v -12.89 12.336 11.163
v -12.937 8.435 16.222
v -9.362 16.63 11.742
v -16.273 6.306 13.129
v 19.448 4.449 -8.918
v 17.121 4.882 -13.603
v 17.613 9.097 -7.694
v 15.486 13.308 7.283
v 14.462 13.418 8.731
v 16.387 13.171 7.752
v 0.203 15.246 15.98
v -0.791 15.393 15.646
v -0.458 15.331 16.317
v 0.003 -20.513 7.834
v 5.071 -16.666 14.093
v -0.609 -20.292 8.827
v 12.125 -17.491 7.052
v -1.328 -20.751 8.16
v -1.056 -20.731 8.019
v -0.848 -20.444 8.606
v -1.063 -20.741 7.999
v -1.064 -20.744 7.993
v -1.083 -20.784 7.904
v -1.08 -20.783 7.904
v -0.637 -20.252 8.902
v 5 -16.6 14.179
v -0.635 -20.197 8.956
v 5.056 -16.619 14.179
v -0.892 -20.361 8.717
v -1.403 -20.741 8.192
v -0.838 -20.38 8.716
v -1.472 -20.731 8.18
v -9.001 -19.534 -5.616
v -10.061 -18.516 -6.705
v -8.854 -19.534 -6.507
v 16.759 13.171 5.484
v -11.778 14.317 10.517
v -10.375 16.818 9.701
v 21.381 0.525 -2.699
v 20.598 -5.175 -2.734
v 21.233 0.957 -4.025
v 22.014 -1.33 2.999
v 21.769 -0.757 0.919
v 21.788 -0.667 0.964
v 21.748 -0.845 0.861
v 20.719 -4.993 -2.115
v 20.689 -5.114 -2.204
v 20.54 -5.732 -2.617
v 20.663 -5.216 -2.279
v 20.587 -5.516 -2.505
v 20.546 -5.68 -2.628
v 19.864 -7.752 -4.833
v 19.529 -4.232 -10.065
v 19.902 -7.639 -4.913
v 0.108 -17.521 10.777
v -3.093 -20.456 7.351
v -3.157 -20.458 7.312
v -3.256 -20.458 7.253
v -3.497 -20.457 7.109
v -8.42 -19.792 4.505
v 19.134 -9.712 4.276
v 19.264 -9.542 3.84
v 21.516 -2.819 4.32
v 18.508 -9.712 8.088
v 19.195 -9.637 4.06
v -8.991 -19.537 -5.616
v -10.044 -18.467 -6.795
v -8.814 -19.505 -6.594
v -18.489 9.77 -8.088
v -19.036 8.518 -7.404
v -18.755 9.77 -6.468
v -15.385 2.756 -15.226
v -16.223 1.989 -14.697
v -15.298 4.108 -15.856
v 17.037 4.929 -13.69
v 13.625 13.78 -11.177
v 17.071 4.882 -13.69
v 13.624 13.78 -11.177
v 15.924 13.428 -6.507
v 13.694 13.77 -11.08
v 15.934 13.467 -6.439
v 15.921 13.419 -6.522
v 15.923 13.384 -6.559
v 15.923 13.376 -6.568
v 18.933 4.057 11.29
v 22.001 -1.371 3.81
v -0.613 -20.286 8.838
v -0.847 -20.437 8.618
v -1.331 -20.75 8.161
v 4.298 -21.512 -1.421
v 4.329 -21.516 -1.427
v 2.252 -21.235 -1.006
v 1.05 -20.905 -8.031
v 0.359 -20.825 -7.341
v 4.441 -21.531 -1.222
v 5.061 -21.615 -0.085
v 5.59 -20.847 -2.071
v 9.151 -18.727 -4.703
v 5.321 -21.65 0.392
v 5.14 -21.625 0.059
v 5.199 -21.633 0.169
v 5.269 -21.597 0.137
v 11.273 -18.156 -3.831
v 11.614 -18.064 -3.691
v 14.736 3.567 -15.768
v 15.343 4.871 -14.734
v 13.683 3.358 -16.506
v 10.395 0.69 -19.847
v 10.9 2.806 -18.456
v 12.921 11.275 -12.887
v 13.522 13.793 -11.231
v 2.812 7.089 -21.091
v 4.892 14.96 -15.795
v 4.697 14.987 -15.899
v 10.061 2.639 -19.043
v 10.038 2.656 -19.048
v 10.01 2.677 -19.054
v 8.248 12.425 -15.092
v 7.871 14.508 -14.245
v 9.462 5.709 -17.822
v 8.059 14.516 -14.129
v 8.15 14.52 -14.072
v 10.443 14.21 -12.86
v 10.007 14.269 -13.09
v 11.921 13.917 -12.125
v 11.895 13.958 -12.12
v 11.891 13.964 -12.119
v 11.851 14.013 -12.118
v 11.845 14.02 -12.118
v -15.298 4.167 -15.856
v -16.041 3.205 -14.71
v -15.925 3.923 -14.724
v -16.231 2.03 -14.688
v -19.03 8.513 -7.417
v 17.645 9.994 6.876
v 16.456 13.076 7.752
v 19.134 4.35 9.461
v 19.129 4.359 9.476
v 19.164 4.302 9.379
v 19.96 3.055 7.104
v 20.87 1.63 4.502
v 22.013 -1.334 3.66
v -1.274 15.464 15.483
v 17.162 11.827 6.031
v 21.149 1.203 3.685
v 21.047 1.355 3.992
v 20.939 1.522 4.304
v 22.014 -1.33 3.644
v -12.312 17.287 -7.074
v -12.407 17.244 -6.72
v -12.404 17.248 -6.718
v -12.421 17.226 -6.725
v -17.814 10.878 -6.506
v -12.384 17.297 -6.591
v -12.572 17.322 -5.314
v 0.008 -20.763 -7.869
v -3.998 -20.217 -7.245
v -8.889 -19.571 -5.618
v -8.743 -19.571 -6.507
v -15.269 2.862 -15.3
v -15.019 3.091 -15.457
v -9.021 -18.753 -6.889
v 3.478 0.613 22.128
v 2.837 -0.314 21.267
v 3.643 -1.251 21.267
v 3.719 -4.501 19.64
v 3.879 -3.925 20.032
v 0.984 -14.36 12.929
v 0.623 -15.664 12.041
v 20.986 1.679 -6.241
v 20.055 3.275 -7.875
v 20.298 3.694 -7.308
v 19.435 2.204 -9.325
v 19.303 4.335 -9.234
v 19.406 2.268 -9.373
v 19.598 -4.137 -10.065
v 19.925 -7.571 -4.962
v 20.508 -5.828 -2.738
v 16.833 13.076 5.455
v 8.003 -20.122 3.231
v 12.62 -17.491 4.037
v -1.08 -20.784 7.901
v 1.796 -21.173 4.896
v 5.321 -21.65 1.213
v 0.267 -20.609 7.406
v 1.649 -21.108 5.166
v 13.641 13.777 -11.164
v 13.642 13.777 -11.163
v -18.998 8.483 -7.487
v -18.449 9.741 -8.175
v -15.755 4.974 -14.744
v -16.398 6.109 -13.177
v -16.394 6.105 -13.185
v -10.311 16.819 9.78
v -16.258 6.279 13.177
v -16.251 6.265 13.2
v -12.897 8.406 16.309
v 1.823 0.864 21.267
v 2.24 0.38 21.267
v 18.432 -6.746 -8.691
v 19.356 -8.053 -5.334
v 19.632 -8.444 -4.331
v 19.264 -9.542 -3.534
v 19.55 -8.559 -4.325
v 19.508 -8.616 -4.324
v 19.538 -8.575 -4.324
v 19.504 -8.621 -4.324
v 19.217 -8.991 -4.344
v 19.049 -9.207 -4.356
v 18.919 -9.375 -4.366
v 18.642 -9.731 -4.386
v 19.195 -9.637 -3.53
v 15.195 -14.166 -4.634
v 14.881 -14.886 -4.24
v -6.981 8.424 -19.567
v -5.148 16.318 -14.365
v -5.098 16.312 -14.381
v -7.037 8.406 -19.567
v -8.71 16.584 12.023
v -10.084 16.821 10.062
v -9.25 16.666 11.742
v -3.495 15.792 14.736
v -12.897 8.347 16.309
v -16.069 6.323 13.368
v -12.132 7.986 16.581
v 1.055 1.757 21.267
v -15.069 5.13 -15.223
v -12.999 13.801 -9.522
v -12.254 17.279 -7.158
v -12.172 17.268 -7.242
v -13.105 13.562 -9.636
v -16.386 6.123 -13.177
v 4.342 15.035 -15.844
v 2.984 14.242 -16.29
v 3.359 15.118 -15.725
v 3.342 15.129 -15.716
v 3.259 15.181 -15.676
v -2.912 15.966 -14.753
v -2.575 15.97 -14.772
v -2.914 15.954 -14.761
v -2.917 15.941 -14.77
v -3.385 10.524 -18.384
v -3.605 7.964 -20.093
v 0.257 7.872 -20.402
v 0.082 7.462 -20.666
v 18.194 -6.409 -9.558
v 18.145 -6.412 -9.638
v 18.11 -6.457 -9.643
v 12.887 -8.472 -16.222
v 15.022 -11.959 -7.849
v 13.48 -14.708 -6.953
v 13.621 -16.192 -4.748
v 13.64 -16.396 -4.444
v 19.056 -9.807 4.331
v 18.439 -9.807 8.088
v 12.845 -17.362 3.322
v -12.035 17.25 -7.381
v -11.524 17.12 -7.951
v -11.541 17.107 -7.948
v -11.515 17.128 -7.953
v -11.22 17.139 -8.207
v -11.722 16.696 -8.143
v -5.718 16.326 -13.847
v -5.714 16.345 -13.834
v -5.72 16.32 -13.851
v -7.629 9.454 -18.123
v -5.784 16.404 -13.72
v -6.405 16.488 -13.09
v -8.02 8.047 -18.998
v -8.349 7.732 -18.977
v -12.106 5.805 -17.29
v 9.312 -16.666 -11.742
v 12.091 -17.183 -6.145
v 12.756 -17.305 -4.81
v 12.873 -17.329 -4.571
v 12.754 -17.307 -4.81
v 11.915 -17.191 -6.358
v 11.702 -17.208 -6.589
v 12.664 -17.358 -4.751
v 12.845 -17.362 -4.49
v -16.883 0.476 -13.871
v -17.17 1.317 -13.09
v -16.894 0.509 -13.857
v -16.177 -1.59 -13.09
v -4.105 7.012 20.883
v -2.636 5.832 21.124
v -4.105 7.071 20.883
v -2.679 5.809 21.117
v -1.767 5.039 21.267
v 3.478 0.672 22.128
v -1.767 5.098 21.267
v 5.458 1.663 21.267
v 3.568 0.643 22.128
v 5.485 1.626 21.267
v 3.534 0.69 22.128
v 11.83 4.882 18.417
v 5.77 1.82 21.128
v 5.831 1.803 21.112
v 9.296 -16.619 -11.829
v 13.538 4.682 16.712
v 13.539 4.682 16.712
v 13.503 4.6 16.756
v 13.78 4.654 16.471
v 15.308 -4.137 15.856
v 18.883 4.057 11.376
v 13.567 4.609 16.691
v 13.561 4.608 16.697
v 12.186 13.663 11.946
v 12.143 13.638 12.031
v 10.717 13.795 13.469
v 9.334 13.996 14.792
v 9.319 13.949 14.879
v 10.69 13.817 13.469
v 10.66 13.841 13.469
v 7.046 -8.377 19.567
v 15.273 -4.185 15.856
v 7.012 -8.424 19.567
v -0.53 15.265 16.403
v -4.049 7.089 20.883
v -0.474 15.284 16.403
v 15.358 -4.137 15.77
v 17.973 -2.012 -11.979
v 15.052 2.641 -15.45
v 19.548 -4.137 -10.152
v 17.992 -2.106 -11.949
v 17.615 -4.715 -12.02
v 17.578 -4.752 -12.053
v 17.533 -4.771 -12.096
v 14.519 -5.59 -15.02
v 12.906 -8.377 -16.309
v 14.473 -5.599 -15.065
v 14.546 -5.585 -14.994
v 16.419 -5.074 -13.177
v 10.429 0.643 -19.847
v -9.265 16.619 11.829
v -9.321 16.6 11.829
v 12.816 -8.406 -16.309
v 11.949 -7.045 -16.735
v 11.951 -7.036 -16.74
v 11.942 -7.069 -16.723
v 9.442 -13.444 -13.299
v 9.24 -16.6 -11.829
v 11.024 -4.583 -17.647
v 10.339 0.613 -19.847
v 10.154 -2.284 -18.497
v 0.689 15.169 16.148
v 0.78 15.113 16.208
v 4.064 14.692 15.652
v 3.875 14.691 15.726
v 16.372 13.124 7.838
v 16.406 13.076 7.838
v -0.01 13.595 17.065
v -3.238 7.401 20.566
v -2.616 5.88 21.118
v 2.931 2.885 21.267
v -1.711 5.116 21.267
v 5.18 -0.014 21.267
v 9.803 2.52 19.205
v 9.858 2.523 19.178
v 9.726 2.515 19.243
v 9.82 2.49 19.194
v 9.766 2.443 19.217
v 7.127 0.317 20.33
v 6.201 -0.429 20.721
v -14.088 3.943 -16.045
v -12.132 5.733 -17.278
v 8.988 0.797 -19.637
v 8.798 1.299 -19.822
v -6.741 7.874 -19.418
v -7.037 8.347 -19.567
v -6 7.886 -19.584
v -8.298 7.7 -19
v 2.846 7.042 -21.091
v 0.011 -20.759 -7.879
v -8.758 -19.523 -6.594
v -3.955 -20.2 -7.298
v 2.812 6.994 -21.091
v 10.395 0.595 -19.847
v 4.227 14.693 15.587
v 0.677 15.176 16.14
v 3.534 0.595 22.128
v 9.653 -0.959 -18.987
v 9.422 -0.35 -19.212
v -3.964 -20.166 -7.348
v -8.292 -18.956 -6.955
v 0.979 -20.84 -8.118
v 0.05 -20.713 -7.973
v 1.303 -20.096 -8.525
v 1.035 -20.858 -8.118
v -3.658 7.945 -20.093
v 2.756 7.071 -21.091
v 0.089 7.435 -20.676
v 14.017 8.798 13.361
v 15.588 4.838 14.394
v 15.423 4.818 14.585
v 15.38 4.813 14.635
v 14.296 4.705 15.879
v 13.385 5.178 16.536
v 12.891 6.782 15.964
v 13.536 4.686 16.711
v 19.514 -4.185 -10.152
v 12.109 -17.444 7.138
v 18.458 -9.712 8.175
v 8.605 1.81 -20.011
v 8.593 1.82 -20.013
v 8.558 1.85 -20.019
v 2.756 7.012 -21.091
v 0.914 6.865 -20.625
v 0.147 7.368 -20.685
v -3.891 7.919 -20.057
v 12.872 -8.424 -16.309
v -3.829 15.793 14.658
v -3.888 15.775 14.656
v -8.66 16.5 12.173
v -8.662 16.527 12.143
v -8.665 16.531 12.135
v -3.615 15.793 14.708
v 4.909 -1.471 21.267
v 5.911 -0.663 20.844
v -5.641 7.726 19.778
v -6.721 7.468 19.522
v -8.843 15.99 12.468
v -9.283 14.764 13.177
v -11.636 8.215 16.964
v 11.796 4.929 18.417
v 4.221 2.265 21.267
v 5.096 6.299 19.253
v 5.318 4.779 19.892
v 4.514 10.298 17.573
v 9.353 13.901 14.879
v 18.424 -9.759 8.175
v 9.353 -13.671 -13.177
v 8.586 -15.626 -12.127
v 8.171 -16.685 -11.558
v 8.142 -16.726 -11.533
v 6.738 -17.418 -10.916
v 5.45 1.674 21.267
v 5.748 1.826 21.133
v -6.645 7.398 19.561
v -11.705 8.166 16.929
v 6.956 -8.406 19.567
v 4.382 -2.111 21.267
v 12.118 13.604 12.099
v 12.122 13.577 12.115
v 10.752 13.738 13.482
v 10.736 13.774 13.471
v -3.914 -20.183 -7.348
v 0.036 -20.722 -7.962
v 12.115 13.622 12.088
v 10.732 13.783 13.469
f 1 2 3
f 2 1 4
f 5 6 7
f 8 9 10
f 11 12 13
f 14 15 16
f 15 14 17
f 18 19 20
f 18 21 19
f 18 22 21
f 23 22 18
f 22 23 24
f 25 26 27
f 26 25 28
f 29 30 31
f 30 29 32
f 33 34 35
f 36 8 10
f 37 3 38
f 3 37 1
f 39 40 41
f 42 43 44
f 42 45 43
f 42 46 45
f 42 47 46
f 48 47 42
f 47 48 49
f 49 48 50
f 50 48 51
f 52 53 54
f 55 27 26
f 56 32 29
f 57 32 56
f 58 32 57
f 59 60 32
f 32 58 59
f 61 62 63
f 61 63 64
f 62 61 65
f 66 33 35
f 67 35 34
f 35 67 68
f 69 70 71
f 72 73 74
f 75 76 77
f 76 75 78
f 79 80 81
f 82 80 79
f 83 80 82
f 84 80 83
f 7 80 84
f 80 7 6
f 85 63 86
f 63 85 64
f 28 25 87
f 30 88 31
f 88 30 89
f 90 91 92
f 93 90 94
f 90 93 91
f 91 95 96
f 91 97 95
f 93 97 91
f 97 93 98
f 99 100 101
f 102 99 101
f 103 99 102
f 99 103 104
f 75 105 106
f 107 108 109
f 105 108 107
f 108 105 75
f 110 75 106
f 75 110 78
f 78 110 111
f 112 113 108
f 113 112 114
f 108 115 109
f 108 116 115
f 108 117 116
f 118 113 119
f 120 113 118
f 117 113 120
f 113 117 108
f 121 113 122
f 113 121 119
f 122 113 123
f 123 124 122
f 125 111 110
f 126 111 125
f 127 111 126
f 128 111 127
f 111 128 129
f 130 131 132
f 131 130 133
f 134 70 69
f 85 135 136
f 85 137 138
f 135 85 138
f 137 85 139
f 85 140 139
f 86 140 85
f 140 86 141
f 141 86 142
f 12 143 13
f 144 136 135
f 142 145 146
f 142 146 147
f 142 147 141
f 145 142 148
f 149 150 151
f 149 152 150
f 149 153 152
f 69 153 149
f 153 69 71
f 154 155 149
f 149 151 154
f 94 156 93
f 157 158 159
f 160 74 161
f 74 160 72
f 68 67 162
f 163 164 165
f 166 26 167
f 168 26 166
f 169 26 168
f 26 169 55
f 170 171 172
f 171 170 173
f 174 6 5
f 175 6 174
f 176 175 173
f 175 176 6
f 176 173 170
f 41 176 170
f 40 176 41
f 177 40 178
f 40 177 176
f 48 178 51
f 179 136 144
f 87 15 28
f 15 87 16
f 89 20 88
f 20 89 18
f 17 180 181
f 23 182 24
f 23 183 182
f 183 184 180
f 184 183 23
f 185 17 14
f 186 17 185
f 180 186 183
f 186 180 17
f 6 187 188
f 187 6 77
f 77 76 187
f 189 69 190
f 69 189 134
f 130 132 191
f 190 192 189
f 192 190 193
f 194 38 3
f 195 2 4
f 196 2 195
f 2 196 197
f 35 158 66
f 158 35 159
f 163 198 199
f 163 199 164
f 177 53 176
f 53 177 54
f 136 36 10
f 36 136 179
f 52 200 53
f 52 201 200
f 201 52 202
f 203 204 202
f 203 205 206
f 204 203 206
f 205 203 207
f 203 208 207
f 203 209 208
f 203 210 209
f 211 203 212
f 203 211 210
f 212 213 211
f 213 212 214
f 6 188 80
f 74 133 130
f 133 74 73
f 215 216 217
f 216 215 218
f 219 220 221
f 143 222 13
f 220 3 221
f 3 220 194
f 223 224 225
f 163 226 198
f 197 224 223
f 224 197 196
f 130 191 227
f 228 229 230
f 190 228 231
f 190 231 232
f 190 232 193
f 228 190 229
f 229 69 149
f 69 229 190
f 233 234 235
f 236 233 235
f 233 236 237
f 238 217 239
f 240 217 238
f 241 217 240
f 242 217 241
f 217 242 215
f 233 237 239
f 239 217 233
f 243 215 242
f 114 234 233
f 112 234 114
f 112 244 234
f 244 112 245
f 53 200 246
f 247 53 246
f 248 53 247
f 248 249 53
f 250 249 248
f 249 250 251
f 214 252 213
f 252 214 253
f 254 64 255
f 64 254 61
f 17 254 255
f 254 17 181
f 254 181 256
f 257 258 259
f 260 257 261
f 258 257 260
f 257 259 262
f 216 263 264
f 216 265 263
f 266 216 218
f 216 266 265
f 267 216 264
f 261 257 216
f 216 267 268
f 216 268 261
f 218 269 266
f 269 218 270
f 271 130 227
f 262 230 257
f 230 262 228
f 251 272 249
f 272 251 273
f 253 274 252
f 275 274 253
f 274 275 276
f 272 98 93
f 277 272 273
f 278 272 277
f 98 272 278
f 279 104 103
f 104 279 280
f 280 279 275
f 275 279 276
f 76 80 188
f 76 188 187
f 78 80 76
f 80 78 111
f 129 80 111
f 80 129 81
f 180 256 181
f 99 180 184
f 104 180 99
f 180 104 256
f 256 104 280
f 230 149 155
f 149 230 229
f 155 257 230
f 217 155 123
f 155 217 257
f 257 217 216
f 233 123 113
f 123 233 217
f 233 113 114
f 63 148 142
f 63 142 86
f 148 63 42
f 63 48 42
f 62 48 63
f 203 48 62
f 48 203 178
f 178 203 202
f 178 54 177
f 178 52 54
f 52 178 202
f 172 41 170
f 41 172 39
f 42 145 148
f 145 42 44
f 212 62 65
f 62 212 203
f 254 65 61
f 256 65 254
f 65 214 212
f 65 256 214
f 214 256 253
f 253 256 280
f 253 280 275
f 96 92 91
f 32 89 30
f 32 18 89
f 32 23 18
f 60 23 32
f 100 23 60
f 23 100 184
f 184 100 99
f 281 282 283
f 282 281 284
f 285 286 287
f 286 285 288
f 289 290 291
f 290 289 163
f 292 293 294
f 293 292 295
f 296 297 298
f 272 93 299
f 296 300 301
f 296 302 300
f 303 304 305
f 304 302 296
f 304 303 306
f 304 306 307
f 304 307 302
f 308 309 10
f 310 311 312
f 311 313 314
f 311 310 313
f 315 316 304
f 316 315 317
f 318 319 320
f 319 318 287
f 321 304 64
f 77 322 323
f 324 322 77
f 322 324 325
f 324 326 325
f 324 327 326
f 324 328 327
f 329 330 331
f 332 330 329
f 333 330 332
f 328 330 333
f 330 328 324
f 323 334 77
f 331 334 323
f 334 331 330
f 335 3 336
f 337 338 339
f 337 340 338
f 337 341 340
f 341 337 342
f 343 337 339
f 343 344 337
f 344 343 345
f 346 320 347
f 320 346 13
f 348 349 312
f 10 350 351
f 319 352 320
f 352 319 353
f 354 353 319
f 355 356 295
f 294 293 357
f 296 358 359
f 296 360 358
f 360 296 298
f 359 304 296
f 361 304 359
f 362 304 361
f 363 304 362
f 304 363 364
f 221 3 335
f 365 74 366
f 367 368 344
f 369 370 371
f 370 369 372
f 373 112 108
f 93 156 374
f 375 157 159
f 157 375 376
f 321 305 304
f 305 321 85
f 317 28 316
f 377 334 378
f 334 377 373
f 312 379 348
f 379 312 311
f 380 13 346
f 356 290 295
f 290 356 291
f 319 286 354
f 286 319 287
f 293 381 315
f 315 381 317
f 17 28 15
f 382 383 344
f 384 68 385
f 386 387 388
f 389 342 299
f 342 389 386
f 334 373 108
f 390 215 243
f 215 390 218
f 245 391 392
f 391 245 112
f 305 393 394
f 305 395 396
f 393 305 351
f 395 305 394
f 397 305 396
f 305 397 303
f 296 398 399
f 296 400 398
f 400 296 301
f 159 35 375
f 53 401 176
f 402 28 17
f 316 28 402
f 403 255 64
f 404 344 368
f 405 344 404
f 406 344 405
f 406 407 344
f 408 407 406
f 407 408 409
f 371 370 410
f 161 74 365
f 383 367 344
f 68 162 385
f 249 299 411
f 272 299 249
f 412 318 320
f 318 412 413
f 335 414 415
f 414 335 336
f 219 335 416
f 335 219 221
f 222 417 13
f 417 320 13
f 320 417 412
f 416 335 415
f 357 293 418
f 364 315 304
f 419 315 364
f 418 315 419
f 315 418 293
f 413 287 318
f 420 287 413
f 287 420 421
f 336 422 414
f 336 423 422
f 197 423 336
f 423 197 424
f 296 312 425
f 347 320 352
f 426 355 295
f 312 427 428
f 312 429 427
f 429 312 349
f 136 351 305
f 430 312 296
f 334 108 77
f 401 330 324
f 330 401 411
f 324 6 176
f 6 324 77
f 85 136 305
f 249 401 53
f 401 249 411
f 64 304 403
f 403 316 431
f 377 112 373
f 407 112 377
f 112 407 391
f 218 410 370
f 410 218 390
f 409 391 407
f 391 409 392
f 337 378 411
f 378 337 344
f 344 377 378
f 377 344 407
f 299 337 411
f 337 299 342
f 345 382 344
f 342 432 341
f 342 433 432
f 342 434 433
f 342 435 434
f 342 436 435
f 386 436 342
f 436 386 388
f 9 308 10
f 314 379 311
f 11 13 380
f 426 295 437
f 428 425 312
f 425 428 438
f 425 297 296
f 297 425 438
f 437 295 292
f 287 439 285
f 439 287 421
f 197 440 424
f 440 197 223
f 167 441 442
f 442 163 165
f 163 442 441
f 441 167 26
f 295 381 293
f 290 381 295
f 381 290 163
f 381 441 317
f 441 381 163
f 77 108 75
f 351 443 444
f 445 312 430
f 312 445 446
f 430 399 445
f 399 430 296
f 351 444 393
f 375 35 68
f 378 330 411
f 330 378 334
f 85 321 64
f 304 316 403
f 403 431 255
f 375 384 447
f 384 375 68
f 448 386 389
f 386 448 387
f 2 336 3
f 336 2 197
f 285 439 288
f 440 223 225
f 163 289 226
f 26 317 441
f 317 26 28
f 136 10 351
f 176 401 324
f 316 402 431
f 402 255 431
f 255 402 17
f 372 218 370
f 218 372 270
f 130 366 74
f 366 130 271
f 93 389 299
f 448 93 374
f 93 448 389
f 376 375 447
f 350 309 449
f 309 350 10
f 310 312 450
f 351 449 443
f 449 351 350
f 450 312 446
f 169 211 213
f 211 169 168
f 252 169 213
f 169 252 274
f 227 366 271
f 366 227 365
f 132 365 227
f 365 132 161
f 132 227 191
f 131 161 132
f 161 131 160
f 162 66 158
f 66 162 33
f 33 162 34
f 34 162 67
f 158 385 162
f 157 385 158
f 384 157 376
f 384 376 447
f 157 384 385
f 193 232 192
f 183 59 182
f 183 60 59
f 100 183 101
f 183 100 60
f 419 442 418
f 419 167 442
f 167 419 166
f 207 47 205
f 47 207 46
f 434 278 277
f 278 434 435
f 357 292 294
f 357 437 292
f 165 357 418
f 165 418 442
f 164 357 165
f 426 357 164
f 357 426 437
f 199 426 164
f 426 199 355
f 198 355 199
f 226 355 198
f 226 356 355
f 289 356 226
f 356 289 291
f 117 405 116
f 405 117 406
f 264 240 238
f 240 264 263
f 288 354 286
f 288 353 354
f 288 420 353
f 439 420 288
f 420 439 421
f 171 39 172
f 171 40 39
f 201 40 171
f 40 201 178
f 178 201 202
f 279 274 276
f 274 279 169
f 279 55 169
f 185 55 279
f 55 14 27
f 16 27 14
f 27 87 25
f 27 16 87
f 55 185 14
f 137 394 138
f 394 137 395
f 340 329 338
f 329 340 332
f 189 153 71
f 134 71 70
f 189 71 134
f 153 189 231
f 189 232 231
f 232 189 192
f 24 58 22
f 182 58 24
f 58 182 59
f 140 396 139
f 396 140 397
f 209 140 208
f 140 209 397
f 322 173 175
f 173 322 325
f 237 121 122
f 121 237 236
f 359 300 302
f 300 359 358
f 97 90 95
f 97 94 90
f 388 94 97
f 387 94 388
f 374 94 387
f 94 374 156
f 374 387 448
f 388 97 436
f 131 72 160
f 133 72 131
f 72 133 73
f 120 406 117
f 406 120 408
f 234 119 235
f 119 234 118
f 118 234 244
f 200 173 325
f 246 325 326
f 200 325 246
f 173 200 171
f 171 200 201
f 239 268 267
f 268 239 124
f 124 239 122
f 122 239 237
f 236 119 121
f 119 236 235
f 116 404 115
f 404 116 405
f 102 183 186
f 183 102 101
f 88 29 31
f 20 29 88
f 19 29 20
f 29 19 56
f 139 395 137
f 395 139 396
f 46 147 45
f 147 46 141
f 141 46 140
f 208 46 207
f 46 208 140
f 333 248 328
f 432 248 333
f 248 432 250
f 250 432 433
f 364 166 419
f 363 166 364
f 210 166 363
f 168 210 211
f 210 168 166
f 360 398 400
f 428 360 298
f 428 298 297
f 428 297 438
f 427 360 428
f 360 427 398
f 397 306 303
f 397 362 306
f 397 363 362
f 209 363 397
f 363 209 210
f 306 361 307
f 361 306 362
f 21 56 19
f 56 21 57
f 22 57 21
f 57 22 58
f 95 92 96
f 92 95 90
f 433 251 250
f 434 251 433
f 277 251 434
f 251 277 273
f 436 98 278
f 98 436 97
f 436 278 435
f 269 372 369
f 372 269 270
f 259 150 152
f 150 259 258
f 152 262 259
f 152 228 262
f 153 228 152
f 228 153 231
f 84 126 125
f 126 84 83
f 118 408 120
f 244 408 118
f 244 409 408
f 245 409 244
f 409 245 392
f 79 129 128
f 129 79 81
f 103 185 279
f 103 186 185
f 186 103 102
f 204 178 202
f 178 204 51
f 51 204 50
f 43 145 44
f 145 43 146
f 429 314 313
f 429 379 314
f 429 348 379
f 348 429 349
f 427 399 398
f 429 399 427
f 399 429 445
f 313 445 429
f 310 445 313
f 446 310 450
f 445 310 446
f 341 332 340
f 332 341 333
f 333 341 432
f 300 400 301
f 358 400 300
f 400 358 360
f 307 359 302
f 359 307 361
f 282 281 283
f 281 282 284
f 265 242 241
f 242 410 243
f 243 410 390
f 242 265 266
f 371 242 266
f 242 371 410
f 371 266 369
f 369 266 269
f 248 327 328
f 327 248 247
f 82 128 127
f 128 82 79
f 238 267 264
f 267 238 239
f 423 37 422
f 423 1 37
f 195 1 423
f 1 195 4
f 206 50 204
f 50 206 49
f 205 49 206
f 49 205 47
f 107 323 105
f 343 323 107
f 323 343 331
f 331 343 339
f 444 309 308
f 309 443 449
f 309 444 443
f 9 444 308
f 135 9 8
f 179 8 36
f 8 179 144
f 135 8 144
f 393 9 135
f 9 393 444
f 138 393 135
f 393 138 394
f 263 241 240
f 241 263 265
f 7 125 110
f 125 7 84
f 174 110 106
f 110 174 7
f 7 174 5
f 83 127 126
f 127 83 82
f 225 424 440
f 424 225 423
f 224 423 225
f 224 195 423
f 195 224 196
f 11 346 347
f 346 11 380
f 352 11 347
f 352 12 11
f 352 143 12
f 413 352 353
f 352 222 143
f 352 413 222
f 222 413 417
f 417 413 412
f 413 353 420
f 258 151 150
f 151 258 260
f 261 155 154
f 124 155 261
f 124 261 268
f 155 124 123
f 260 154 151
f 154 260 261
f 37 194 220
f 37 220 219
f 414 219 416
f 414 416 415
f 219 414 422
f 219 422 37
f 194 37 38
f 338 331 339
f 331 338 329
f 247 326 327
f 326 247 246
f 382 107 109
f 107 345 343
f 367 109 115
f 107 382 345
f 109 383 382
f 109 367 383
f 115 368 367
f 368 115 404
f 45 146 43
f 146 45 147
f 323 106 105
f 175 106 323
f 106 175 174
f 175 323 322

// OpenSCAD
// Auto-generated OpenSCAD file

    inner_points = 10*[[0.03149424619031844, -0.6992864879444639, 2.118033988749915], [0.03149424617314351, -0.6992864879462605, -2.118033988749875], [-0.741026938557207, -0.06429749660974819, 2.1180339887527775], [-0.741026938574382, -0.06429749661154475, -2.1180339887470123], [0.6664832375250342, 0.07323469680306156, 2.1180339887470123], [0.6664832375078593, 0.073234696801265, -2.1180339887527775], [-0.10603794722249132, 0.7082236881377774, 2.118033988749875], [-0.10603794723966625, 0.7082236881359808, -2.118033988749915], [-0.9959395242778242, -1.9492520218959832, 0.5000000000047155], [-0.9959395242818789, -1.9492520218964078, -0.49999999999528455], [1.6939170079800567, 1.3232002307532087, 0.49999999999242173], [1.693917007976002, 1.3232002307527841, -0.5000000000075783], [1.2814597801305372, -1.726720258407157, -0.5000000000046125], [-1.9909924725146007, 0.9631362738511482, 0.5000000000075147], [-1.9909924725186547, 0.9631362738507241, -0.49999999999248534], [1.916448771465253, -0.9541990736596313, -0.5000000000075147], [-1.356003481179885, 1.7356574585986737, 0.5000000000046125], [-1.356003481183939, 1.7356574585982496, -0.49999999999538747], [0.9739715088171708, -0.8267427808031579, -1.809016994378695], [-1.0485152098665185, 0.8356799809946748, 1.809016994378695], [-1.0485152098811878, 0.8356799809931404, -1.8090169943712], [-1.1859777270848737, -1.3930353516266287, 1.3090169943801975], [-1.1859777270954883, -1.393035351627739, -1.3090169943696974], [1.1114340260461406, 1.4019725518192556, 1.3090169943696974], [1.111434026035526, 1.4019725518181454, -1.3090169943801975], [0.5290207203001192, -2.155480635818928, -1.3799625129733234e-12], [2.1914434820964175, -0.13299391712056935, -8.977904296875527e-12], [-0.24350046444084633, -1.5204916444835261, 1.6180339887513777], [-0.24350046445396684, -1.5204916444848984, -1.618033988748412], [-1.4934659983916794, -0.4930578740219434, 1.61803398875601], [-1.4934659984047998, -0.49305787402331586, -1.6180339887437798], [1.418922297355452, 0.5019950742148327, 1.6180339887437798], [1.4189222973423317, 0.5019950742134602, -1.61803398875601], [0.16895676340461901, 1.529428844676415, 1.618033988748412], [0.1689567633914985, 1.5294288446750428, -1.6180339887513777], [-0.05346226163379702, -2.0767083147528806, 0.8090169943758957], [-0.053462261640357105, -2.0767083147535668, -0.8090169943739992], [2.001405279289368, 0.4232227531487855, 0.8090169943665041], [2.001405279282808, 0.4232227531480994, -0.8090169943833908], [0.6989767981900609, -1.6479479373417958, -1.3090169943772316], [-1.8009542697009913, 0.4069196035824795, 1.3090169943819274], [-1.8009542697116054, 0.4069196035813693, -1.3090169943679675], [1.7264105686516436, -0.39798240339096275, -1.3090169943819274], [-0.7735204992394086, 1.6568851375333125, 1.3090169943772316], [-0.773520499250023, 1.6568851375322022, -1.3090169943726633]];

    outer_points = 10*[[-1.371336447205841, 1.7395979495788785, 0.28160841586432317], [1.840844013022788, -0.9711587981091819, 0.8088336578512769], [-2.0028099882397674, 0.9711587981091819, 0.17796268530774234], [1.2093704719888618, -1.7395979495788785, 0.705187927294696], [-1.2093704719888618, 1.7395979495788785, -0.705187927294696], [2.0028099882397674, -0.9711587981091819, -0.17796268530774234], [-1.840844013022788, 0.9711587981091819, -0.8088336578512769], [1.371336447205841, -1.7395979495788785, -0.28160841586432317], [-0.4064591423188801, 0.7041810071951622, 2.079660561781849], [0.35183380229163597, 0.06425814427453419, 2.2041215583445464], [0.27963973874229003, 0.7041810071951622, -2.1004758277879656], [1.037932683352806, 0.06425814427453419, -1.9760148312252683], [1.6356459076028755, 1.3076188096386316, 0.77515384996851], [-1.7976118828198546, -1.3076188096386316, 0.21164249319050915], [-1.0393189382093386, -1.9475416725592598, 0.33610348975320653], [1.7976118828198546, 1.3076188096386316, -0.21164249319050915], [-1.6356459076028755, -1.3076188096386316, -0.77515384996851], [-0.8773529629923593, -1.9475416725592598, -0.6506928534058127], [2.1983744202265796, -0.15173142569558906, 0.36082608061173255], [-2.1983744202265796, 0.15173142569558906, -0.36082608061173255], [0.5451552268035095, -2.163531242529383, 0.08947803522579041], [-1.285617552887813, 0.837669902652172, 1.6222097951243055], [0.6996191495317593, -0.837669902652172, 1.948052914399131], [-0.6996191495317593, 0.837669902652172, -1.948052914399131], [1.285617552887813, -0.837669902652172, -1.6222097951243055], [0.9303301531589606, 1.3901194841517452, 1.47923007115347], [1.3543625812980353, 1.3901194841517452, -1.104236295210947], [-0.9280871456840218, 1.6570972750657649, 1.174202217884761], [1.525800369934091, -0.41373660970166726, 1.5769664633090175], [-1.9498327980731658, 0.41373660970166726, 1.0064999030553996], [0.5040547175449472, -1.6570972750657649, 1.409264148479656], [-0.5040547175449472, 1.6570972750657649, -1.409264148479656], [1.9498327980731658, -0.41373660970166726, -1.0064999030553996], [-1.525800369934091, 0.41373660970166726, -1.5769664633090175], [0.9280871456840218, -1.6570972750657649, -1.174202217884761], [-0.04892873511508877, 1.523608379608755, 1.631652984542305], [1.1780150226939676, 0.4881914372250389, 1.833035107254433], [0.47520417072910215, 1.523608379608755, -1.5616870618684908], [1.7021479285381587, 0.4881914372250389, -1.3603049391563626], [1.8833307771378829, 0.4056907627119256, 1.128958886069473], [-2.145397230059978, -0.4056907627119256, 0.46771113713592477], [-0.16016052764040542, -2.0810305680162697, 0.7935542564107504], [2.145397230059978, 0.4056907627119256, -0.46771113713592477], [-1.8833307771378829, -0.4056907627119256, -1.128958886069473], [0.10190592528169004, -2.0810305680162697, -0.8031157667946475]];

    // Convex hull for inner set (I)
    module inner_hull() {
        hull() {
            for (p = inner_points) {
                translate(p) sphere(r=0.1);
            }
        }
    }

    // Convex hull for outer set (O) minus inner hull (O \ I)
    module outer_minus_inner() {
        difference() {
            hull() {
                for (p = outer_points) {
                    translate(p) sphere(r=0.1);
                }
            }
            inner_hull(); // Subtract inner hull
        }
    }

    // Convex hull for outer set (O) minus all translated inner hulls
    module outer_minus_AllTranslationInner() {
        difference() {
            hull() {
                for (p = outer_points) {
                    translate(p) sphere(r=0.1);
                }
            }
            hull() {
                translate([0,0,50]) inner_hull();
                translate([0,0,-50]) inner_hull();
            }; // Subtract translated inner hulls
        }
    }

    // Difference between outer_minus_inner and outer_minus_AllTranslationInner
    module outer_minus_inner_diff() {
        difference() {
            // Outer minus inner
            difference() {
                hull() {
                    for (p = outer_points) {
                        translate(p) sphere(r=0.1);
                    }
                }
                inner_hull();
            }

            // Subtract Outer minus AllTranslationInner
            difference() {
                hull() {
                    for (p = outer_points) {
                        translate(p) sphere(r=0.1);
                    }
                }
                hull() {
                    translate([0,0,50]) inner_hull();
                    translate([0,0,-50]) inner_hull();
                };
            }
        }
    }

    // Rendering all with colors applied
    color([1, 1, 0, 1]) outer_minus_inner_diff(); // Opaque yellow
    
